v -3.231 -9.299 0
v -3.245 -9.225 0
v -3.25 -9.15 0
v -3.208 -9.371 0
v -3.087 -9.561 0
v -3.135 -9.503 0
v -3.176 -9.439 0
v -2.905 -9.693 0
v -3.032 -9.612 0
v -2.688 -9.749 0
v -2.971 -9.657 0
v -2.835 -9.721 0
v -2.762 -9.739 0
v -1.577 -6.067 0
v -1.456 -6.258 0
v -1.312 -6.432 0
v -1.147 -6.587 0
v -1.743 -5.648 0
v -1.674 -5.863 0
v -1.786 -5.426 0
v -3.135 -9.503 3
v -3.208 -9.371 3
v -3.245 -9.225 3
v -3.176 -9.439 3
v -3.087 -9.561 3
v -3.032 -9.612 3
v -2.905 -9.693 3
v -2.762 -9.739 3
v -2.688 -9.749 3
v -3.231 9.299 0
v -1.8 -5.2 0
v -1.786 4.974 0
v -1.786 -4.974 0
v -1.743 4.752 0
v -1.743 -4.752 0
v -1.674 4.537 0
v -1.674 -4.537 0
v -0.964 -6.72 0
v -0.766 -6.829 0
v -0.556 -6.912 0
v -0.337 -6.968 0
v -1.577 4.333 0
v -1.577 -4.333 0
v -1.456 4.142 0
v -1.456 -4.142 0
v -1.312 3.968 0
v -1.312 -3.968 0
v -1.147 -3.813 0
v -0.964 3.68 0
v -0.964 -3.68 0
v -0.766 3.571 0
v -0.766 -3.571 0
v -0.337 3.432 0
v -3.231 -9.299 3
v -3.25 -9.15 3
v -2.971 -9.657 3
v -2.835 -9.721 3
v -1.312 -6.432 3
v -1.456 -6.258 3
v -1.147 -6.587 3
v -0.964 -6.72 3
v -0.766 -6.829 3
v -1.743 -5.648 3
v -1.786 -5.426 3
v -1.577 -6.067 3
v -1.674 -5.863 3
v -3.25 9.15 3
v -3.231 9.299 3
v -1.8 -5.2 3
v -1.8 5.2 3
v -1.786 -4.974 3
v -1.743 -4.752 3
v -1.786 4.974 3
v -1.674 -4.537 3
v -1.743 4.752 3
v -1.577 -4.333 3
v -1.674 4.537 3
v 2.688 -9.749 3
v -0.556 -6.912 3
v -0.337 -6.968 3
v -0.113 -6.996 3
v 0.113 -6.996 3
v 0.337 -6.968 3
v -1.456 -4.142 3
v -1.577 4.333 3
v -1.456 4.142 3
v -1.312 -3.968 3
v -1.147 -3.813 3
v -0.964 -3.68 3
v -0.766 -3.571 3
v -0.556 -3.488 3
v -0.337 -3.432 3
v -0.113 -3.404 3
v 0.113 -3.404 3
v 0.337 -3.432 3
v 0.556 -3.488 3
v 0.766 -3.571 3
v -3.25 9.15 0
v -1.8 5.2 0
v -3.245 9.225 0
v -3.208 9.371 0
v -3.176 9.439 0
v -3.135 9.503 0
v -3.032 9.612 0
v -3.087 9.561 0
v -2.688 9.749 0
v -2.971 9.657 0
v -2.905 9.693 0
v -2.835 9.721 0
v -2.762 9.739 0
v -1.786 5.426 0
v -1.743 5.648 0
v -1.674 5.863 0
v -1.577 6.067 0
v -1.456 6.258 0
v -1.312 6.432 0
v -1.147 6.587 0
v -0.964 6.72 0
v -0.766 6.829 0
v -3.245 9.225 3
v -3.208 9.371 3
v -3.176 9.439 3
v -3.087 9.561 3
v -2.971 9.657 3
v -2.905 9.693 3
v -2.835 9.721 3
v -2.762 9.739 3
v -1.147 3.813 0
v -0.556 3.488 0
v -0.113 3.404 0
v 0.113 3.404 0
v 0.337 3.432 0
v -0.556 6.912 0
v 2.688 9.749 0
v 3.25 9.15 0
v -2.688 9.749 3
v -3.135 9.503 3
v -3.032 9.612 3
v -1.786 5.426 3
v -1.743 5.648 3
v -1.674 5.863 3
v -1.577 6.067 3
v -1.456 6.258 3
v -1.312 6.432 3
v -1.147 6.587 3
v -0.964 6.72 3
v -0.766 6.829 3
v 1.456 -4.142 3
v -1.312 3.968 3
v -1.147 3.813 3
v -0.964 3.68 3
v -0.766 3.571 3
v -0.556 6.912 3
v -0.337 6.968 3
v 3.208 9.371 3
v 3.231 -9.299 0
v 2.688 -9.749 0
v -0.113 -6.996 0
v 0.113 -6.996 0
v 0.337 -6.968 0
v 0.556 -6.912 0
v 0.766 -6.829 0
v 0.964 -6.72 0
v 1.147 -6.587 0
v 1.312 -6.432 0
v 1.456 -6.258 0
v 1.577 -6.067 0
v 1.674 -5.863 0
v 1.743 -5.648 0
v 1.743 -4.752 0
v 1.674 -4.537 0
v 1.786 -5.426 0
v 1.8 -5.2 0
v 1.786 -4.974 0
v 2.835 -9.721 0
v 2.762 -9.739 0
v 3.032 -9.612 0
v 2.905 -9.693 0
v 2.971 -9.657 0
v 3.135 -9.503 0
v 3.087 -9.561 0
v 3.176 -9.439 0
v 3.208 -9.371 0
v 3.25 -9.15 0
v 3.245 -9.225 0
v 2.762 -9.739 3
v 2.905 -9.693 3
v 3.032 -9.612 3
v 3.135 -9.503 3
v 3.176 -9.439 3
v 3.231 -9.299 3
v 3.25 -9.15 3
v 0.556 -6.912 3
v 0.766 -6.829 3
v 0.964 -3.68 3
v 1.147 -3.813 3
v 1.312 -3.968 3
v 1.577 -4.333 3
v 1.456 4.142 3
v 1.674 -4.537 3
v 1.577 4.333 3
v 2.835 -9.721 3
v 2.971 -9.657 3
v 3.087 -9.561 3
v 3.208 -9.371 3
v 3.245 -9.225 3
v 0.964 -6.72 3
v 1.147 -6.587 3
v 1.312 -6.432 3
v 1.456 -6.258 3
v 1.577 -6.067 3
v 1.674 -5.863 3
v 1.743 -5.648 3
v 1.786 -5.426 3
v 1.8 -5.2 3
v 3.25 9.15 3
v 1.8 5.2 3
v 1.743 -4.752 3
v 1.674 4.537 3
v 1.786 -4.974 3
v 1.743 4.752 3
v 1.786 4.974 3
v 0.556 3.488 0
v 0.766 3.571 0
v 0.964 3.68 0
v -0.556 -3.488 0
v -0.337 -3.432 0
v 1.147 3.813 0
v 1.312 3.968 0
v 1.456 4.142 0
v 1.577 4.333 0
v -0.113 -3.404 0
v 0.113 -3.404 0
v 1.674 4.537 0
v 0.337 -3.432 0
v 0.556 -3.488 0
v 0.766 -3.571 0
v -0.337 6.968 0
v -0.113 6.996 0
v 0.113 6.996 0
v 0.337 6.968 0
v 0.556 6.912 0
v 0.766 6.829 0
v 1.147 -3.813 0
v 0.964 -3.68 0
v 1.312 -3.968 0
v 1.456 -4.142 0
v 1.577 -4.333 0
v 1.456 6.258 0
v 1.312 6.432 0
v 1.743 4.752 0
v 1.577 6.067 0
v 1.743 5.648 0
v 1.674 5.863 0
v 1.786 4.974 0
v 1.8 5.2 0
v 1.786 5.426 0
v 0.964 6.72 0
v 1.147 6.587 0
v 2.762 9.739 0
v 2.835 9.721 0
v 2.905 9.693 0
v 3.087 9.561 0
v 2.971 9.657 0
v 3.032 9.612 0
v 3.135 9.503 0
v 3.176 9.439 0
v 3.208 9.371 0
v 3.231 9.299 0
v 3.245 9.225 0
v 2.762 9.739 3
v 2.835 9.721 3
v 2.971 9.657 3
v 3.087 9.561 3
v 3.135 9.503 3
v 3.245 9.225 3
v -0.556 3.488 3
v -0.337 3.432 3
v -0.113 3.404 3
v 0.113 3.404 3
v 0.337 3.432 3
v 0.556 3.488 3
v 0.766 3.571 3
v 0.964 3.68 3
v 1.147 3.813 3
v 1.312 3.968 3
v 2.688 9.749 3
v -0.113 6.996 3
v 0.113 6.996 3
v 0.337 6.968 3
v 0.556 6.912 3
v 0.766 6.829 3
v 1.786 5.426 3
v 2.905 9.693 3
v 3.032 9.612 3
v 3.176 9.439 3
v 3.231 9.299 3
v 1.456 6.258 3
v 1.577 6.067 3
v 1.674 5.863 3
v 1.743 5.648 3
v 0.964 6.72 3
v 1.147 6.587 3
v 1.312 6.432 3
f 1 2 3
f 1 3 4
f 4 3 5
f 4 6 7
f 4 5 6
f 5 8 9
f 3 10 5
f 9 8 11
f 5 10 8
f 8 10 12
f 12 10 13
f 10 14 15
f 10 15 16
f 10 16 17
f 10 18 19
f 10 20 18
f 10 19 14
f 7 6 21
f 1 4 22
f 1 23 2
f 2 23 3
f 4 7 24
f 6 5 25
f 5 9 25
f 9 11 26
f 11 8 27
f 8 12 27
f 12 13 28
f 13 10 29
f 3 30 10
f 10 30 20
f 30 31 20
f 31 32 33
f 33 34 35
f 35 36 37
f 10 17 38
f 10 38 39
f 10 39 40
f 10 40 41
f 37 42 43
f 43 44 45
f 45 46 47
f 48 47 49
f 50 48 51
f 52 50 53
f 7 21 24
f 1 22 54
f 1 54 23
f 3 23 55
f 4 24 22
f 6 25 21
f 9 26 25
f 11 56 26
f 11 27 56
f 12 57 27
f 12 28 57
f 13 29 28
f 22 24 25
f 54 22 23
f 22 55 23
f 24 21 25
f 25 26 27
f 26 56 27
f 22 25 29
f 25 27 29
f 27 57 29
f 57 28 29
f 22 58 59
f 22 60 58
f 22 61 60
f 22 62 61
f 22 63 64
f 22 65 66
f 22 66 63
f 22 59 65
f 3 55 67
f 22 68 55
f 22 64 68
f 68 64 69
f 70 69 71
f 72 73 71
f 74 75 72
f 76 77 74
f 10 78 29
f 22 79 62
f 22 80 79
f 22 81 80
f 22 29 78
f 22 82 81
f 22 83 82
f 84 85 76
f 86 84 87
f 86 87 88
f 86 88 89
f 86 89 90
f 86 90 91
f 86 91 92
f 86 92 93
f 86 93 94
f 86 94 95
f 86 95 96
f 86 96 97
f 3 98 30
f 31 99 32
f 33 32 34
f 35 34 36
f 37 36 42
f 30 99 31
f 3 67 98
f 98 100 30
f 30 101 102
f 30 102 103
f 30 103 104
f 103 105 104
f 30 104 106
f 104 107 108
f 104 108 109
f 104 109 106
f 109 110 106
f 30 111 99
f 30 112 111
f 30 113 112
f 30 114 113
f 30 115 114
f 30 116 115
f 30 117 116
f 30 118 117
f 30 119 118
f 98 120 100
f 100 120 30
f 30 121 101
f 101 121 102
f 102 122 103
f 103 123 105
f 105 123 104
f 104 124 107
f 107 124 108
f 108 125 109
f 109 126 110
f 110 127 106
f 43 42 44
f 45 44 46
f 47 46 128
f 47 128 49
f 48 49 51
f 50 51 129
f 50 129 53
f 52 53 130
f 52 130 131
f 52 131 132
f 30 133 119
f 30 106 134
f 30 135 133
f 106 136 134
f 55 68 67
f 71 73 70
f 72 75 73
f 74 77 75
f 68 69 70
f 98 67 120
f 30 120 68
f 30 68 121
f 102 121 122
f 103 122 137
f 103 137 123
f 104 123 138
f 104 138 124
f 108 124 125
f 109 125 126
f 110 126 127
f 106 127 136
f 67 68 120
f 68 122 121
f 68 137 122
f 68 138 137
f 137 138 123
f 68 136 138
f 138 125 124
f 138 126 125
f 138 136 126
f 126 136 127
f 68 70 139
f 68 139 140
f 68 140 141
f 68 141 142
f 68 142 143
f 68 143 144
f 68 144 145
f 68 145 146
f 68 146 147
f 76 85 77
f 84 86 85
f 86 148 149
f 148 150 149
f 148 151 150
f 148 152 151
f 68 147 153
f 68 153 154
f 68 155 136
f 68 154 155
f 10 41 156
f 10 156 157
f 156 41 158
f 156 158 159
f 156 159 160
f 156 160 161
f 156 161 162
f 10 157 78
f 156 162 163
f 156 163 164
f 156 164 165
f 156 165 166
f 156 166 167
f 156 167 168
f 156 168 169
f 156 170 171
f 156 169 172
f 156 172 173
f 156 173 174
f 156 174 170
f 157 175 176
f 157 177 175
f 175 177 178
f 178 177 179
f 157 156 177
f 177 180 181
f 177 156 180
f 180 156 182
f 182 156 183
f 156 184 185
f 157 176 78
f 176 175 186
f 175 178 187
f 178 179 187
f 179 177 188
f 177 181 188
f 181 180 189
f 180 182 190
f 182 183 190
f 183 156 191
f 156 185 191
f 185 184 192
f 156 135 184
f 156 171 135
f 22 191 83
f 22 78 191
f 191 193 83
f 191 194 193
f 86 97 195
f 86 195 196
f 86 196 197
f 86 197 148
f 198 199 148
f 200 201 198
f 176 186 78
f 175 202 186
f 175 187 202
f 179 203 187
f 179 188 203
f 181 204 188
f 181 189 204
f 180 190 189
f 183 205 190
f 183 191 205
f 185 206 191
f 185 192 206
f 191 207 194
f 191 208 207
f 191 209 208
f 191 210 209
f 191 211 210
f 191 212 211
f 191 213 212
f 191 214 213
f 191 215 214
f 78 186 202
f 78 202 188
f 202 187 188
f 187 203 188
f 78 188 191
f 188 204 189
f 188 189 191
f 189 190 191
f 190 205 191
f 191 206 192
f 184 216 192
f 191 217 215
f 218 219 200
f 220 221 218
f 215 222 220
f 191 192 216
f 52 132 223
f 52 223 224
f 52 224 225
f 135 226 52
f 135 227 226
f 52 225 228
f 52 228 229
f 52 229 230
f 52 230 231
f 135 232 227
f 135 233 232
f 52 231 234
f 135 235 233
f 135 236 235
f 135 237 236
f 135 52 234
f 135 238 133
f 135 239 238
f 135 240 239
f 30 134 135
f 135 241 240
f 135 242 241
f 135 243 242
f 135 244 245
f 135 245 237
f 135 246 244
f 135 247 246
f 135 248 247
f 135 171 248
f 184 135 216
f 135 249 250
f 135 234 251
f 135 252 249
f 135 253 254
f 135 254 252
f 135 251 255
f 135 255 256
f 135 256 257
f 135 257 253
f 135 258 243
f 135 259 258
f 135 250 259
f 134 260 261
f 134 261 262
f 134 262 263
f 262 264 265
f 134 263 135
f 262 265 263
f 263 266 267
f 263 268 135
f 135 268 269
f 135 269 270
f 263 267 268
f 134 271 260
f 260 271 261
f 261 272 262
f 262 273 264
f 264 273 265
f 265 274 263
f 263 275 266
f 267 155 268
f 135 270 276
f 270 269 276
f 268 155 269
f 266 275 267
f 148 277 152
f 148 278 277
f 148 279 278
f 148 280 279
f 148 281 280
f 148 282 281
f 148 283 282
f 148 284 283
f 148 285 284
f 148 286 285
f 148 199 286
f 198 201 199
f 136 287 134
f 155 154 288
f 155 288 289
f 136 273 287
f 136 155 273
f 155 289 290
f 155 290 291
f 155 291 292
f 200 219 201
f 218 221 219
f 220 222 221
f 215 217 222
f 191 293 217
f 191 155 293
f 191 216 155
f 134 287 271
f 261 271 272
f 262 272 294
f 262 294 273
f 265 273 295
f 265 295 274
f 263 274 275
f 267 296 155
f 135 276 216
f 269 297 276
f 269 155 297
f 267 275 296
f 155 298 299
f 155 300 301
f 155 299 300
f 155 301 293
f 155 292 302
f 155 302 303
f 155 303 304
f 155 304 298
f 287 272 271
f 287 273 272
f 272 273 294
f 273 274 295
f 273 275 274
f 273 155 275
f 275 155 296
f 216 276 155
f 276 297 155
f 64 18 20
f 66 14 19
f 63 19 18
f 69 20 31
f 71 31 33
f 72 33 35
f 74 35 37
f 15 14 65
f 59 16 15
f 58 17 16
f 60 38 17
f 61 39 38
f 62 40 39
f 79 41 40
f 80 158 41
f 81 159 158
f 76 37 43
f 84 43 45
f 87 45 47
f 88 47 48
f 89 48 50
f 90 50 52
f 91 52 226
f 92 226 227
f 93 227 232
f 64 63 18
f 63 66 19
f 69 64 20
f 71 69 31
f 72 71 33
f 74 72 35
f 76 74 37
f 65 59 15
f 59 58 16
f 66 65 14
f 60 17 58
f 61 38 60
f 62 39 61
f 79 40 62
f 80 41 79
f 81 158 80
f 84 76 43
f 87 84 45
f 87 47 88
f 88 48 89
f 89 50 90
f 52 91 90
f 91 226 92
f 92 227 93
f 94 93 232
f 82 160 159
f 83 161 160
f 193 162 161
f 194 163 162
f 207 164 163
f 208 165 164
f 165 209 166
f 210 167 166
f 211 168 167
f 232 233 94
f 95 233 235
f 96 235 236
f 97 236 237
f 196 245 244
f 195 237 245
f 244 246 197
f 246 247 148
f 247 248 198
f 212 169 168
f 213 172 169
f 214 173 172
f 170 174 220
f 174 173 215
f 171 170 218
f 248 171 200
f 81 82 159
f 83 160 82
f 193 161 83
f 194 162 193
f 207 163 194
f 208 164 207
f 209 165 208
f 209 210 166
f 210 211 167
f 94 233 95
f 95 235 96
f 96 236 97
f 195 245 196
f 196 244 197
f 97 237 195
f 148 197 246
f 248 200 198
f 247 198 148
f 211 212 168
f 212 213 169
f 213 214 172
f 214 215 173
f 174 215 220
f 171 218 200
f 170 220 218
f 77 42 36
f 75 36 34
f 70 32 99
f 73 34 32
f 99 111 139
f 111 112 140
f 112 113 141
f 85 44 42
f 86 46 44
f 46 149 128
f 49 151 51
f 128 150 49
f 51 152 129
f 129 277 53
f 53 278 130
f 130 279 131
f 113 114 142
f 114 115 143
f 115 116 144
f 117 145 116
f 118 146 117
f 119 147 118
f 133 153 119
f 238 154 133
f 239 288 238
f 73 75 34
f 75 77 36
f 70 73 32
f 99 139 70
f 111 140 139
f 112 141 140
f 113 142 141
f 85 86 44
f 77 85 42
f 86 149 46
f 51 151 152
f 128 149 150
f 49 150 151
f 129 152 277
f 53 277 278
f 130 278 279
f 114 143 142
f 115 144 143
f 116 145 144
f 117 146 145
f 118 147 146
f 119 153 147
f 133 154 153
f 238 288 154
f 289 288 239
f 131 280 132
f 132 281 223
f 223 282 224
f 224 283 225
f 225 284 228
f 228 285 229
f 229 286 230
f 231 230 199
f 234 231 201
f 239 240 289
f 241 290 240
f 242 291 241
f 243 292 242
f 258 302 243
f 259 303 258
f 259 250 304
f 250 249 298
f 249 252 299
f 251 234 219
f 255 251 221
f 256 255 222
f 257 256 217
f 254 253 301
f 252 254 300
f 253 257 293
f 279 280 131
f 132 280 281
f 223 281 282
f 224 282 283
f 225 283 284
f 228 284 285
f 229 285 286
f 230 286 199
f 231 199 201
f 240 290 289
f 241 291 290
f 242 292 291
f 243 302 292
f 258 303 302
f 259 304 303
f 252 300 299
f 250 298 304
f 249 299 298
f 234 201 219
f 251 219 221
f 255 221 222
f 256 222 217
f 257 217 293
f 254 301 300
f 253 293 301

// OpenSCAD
$fn = 50;

difference() {
	union() {
		translate(v = [34.5, 0, 3]) {
			rotate(a = [0, 0, 0]) {
				difference() {
					union() {
						translate(v = [-34.5, 0, -3]) {
							hull() {
								translate(v = [-2.65, 9.15, 0]) {
									cylinder(h = 3, r = 0.6);
								}
								translate(v = [2.65, 9.15, 0]) {
									cylinder(h = 3, r = 0.6);
								}
								translate(v = [-2.65, -9.15, 0]) {
									cylinder(h = 3, r = 0.6);
								}
								translate(v = [2.65, -9.15, 0]) {
									cylinder(h = 3, r = 0.6);
								}
							}
						}
					}
					union() {
						translate(v = [-34.5, -5.2, -4]) {
							cylinder(h = 5, r = 1.8);
						}
						translate(v = [-34.5, 5.2, -4]) {
							cylinder(h = 5, r = 1.8);
						}
					}
				}
			}
		}
	}
	union();
}
